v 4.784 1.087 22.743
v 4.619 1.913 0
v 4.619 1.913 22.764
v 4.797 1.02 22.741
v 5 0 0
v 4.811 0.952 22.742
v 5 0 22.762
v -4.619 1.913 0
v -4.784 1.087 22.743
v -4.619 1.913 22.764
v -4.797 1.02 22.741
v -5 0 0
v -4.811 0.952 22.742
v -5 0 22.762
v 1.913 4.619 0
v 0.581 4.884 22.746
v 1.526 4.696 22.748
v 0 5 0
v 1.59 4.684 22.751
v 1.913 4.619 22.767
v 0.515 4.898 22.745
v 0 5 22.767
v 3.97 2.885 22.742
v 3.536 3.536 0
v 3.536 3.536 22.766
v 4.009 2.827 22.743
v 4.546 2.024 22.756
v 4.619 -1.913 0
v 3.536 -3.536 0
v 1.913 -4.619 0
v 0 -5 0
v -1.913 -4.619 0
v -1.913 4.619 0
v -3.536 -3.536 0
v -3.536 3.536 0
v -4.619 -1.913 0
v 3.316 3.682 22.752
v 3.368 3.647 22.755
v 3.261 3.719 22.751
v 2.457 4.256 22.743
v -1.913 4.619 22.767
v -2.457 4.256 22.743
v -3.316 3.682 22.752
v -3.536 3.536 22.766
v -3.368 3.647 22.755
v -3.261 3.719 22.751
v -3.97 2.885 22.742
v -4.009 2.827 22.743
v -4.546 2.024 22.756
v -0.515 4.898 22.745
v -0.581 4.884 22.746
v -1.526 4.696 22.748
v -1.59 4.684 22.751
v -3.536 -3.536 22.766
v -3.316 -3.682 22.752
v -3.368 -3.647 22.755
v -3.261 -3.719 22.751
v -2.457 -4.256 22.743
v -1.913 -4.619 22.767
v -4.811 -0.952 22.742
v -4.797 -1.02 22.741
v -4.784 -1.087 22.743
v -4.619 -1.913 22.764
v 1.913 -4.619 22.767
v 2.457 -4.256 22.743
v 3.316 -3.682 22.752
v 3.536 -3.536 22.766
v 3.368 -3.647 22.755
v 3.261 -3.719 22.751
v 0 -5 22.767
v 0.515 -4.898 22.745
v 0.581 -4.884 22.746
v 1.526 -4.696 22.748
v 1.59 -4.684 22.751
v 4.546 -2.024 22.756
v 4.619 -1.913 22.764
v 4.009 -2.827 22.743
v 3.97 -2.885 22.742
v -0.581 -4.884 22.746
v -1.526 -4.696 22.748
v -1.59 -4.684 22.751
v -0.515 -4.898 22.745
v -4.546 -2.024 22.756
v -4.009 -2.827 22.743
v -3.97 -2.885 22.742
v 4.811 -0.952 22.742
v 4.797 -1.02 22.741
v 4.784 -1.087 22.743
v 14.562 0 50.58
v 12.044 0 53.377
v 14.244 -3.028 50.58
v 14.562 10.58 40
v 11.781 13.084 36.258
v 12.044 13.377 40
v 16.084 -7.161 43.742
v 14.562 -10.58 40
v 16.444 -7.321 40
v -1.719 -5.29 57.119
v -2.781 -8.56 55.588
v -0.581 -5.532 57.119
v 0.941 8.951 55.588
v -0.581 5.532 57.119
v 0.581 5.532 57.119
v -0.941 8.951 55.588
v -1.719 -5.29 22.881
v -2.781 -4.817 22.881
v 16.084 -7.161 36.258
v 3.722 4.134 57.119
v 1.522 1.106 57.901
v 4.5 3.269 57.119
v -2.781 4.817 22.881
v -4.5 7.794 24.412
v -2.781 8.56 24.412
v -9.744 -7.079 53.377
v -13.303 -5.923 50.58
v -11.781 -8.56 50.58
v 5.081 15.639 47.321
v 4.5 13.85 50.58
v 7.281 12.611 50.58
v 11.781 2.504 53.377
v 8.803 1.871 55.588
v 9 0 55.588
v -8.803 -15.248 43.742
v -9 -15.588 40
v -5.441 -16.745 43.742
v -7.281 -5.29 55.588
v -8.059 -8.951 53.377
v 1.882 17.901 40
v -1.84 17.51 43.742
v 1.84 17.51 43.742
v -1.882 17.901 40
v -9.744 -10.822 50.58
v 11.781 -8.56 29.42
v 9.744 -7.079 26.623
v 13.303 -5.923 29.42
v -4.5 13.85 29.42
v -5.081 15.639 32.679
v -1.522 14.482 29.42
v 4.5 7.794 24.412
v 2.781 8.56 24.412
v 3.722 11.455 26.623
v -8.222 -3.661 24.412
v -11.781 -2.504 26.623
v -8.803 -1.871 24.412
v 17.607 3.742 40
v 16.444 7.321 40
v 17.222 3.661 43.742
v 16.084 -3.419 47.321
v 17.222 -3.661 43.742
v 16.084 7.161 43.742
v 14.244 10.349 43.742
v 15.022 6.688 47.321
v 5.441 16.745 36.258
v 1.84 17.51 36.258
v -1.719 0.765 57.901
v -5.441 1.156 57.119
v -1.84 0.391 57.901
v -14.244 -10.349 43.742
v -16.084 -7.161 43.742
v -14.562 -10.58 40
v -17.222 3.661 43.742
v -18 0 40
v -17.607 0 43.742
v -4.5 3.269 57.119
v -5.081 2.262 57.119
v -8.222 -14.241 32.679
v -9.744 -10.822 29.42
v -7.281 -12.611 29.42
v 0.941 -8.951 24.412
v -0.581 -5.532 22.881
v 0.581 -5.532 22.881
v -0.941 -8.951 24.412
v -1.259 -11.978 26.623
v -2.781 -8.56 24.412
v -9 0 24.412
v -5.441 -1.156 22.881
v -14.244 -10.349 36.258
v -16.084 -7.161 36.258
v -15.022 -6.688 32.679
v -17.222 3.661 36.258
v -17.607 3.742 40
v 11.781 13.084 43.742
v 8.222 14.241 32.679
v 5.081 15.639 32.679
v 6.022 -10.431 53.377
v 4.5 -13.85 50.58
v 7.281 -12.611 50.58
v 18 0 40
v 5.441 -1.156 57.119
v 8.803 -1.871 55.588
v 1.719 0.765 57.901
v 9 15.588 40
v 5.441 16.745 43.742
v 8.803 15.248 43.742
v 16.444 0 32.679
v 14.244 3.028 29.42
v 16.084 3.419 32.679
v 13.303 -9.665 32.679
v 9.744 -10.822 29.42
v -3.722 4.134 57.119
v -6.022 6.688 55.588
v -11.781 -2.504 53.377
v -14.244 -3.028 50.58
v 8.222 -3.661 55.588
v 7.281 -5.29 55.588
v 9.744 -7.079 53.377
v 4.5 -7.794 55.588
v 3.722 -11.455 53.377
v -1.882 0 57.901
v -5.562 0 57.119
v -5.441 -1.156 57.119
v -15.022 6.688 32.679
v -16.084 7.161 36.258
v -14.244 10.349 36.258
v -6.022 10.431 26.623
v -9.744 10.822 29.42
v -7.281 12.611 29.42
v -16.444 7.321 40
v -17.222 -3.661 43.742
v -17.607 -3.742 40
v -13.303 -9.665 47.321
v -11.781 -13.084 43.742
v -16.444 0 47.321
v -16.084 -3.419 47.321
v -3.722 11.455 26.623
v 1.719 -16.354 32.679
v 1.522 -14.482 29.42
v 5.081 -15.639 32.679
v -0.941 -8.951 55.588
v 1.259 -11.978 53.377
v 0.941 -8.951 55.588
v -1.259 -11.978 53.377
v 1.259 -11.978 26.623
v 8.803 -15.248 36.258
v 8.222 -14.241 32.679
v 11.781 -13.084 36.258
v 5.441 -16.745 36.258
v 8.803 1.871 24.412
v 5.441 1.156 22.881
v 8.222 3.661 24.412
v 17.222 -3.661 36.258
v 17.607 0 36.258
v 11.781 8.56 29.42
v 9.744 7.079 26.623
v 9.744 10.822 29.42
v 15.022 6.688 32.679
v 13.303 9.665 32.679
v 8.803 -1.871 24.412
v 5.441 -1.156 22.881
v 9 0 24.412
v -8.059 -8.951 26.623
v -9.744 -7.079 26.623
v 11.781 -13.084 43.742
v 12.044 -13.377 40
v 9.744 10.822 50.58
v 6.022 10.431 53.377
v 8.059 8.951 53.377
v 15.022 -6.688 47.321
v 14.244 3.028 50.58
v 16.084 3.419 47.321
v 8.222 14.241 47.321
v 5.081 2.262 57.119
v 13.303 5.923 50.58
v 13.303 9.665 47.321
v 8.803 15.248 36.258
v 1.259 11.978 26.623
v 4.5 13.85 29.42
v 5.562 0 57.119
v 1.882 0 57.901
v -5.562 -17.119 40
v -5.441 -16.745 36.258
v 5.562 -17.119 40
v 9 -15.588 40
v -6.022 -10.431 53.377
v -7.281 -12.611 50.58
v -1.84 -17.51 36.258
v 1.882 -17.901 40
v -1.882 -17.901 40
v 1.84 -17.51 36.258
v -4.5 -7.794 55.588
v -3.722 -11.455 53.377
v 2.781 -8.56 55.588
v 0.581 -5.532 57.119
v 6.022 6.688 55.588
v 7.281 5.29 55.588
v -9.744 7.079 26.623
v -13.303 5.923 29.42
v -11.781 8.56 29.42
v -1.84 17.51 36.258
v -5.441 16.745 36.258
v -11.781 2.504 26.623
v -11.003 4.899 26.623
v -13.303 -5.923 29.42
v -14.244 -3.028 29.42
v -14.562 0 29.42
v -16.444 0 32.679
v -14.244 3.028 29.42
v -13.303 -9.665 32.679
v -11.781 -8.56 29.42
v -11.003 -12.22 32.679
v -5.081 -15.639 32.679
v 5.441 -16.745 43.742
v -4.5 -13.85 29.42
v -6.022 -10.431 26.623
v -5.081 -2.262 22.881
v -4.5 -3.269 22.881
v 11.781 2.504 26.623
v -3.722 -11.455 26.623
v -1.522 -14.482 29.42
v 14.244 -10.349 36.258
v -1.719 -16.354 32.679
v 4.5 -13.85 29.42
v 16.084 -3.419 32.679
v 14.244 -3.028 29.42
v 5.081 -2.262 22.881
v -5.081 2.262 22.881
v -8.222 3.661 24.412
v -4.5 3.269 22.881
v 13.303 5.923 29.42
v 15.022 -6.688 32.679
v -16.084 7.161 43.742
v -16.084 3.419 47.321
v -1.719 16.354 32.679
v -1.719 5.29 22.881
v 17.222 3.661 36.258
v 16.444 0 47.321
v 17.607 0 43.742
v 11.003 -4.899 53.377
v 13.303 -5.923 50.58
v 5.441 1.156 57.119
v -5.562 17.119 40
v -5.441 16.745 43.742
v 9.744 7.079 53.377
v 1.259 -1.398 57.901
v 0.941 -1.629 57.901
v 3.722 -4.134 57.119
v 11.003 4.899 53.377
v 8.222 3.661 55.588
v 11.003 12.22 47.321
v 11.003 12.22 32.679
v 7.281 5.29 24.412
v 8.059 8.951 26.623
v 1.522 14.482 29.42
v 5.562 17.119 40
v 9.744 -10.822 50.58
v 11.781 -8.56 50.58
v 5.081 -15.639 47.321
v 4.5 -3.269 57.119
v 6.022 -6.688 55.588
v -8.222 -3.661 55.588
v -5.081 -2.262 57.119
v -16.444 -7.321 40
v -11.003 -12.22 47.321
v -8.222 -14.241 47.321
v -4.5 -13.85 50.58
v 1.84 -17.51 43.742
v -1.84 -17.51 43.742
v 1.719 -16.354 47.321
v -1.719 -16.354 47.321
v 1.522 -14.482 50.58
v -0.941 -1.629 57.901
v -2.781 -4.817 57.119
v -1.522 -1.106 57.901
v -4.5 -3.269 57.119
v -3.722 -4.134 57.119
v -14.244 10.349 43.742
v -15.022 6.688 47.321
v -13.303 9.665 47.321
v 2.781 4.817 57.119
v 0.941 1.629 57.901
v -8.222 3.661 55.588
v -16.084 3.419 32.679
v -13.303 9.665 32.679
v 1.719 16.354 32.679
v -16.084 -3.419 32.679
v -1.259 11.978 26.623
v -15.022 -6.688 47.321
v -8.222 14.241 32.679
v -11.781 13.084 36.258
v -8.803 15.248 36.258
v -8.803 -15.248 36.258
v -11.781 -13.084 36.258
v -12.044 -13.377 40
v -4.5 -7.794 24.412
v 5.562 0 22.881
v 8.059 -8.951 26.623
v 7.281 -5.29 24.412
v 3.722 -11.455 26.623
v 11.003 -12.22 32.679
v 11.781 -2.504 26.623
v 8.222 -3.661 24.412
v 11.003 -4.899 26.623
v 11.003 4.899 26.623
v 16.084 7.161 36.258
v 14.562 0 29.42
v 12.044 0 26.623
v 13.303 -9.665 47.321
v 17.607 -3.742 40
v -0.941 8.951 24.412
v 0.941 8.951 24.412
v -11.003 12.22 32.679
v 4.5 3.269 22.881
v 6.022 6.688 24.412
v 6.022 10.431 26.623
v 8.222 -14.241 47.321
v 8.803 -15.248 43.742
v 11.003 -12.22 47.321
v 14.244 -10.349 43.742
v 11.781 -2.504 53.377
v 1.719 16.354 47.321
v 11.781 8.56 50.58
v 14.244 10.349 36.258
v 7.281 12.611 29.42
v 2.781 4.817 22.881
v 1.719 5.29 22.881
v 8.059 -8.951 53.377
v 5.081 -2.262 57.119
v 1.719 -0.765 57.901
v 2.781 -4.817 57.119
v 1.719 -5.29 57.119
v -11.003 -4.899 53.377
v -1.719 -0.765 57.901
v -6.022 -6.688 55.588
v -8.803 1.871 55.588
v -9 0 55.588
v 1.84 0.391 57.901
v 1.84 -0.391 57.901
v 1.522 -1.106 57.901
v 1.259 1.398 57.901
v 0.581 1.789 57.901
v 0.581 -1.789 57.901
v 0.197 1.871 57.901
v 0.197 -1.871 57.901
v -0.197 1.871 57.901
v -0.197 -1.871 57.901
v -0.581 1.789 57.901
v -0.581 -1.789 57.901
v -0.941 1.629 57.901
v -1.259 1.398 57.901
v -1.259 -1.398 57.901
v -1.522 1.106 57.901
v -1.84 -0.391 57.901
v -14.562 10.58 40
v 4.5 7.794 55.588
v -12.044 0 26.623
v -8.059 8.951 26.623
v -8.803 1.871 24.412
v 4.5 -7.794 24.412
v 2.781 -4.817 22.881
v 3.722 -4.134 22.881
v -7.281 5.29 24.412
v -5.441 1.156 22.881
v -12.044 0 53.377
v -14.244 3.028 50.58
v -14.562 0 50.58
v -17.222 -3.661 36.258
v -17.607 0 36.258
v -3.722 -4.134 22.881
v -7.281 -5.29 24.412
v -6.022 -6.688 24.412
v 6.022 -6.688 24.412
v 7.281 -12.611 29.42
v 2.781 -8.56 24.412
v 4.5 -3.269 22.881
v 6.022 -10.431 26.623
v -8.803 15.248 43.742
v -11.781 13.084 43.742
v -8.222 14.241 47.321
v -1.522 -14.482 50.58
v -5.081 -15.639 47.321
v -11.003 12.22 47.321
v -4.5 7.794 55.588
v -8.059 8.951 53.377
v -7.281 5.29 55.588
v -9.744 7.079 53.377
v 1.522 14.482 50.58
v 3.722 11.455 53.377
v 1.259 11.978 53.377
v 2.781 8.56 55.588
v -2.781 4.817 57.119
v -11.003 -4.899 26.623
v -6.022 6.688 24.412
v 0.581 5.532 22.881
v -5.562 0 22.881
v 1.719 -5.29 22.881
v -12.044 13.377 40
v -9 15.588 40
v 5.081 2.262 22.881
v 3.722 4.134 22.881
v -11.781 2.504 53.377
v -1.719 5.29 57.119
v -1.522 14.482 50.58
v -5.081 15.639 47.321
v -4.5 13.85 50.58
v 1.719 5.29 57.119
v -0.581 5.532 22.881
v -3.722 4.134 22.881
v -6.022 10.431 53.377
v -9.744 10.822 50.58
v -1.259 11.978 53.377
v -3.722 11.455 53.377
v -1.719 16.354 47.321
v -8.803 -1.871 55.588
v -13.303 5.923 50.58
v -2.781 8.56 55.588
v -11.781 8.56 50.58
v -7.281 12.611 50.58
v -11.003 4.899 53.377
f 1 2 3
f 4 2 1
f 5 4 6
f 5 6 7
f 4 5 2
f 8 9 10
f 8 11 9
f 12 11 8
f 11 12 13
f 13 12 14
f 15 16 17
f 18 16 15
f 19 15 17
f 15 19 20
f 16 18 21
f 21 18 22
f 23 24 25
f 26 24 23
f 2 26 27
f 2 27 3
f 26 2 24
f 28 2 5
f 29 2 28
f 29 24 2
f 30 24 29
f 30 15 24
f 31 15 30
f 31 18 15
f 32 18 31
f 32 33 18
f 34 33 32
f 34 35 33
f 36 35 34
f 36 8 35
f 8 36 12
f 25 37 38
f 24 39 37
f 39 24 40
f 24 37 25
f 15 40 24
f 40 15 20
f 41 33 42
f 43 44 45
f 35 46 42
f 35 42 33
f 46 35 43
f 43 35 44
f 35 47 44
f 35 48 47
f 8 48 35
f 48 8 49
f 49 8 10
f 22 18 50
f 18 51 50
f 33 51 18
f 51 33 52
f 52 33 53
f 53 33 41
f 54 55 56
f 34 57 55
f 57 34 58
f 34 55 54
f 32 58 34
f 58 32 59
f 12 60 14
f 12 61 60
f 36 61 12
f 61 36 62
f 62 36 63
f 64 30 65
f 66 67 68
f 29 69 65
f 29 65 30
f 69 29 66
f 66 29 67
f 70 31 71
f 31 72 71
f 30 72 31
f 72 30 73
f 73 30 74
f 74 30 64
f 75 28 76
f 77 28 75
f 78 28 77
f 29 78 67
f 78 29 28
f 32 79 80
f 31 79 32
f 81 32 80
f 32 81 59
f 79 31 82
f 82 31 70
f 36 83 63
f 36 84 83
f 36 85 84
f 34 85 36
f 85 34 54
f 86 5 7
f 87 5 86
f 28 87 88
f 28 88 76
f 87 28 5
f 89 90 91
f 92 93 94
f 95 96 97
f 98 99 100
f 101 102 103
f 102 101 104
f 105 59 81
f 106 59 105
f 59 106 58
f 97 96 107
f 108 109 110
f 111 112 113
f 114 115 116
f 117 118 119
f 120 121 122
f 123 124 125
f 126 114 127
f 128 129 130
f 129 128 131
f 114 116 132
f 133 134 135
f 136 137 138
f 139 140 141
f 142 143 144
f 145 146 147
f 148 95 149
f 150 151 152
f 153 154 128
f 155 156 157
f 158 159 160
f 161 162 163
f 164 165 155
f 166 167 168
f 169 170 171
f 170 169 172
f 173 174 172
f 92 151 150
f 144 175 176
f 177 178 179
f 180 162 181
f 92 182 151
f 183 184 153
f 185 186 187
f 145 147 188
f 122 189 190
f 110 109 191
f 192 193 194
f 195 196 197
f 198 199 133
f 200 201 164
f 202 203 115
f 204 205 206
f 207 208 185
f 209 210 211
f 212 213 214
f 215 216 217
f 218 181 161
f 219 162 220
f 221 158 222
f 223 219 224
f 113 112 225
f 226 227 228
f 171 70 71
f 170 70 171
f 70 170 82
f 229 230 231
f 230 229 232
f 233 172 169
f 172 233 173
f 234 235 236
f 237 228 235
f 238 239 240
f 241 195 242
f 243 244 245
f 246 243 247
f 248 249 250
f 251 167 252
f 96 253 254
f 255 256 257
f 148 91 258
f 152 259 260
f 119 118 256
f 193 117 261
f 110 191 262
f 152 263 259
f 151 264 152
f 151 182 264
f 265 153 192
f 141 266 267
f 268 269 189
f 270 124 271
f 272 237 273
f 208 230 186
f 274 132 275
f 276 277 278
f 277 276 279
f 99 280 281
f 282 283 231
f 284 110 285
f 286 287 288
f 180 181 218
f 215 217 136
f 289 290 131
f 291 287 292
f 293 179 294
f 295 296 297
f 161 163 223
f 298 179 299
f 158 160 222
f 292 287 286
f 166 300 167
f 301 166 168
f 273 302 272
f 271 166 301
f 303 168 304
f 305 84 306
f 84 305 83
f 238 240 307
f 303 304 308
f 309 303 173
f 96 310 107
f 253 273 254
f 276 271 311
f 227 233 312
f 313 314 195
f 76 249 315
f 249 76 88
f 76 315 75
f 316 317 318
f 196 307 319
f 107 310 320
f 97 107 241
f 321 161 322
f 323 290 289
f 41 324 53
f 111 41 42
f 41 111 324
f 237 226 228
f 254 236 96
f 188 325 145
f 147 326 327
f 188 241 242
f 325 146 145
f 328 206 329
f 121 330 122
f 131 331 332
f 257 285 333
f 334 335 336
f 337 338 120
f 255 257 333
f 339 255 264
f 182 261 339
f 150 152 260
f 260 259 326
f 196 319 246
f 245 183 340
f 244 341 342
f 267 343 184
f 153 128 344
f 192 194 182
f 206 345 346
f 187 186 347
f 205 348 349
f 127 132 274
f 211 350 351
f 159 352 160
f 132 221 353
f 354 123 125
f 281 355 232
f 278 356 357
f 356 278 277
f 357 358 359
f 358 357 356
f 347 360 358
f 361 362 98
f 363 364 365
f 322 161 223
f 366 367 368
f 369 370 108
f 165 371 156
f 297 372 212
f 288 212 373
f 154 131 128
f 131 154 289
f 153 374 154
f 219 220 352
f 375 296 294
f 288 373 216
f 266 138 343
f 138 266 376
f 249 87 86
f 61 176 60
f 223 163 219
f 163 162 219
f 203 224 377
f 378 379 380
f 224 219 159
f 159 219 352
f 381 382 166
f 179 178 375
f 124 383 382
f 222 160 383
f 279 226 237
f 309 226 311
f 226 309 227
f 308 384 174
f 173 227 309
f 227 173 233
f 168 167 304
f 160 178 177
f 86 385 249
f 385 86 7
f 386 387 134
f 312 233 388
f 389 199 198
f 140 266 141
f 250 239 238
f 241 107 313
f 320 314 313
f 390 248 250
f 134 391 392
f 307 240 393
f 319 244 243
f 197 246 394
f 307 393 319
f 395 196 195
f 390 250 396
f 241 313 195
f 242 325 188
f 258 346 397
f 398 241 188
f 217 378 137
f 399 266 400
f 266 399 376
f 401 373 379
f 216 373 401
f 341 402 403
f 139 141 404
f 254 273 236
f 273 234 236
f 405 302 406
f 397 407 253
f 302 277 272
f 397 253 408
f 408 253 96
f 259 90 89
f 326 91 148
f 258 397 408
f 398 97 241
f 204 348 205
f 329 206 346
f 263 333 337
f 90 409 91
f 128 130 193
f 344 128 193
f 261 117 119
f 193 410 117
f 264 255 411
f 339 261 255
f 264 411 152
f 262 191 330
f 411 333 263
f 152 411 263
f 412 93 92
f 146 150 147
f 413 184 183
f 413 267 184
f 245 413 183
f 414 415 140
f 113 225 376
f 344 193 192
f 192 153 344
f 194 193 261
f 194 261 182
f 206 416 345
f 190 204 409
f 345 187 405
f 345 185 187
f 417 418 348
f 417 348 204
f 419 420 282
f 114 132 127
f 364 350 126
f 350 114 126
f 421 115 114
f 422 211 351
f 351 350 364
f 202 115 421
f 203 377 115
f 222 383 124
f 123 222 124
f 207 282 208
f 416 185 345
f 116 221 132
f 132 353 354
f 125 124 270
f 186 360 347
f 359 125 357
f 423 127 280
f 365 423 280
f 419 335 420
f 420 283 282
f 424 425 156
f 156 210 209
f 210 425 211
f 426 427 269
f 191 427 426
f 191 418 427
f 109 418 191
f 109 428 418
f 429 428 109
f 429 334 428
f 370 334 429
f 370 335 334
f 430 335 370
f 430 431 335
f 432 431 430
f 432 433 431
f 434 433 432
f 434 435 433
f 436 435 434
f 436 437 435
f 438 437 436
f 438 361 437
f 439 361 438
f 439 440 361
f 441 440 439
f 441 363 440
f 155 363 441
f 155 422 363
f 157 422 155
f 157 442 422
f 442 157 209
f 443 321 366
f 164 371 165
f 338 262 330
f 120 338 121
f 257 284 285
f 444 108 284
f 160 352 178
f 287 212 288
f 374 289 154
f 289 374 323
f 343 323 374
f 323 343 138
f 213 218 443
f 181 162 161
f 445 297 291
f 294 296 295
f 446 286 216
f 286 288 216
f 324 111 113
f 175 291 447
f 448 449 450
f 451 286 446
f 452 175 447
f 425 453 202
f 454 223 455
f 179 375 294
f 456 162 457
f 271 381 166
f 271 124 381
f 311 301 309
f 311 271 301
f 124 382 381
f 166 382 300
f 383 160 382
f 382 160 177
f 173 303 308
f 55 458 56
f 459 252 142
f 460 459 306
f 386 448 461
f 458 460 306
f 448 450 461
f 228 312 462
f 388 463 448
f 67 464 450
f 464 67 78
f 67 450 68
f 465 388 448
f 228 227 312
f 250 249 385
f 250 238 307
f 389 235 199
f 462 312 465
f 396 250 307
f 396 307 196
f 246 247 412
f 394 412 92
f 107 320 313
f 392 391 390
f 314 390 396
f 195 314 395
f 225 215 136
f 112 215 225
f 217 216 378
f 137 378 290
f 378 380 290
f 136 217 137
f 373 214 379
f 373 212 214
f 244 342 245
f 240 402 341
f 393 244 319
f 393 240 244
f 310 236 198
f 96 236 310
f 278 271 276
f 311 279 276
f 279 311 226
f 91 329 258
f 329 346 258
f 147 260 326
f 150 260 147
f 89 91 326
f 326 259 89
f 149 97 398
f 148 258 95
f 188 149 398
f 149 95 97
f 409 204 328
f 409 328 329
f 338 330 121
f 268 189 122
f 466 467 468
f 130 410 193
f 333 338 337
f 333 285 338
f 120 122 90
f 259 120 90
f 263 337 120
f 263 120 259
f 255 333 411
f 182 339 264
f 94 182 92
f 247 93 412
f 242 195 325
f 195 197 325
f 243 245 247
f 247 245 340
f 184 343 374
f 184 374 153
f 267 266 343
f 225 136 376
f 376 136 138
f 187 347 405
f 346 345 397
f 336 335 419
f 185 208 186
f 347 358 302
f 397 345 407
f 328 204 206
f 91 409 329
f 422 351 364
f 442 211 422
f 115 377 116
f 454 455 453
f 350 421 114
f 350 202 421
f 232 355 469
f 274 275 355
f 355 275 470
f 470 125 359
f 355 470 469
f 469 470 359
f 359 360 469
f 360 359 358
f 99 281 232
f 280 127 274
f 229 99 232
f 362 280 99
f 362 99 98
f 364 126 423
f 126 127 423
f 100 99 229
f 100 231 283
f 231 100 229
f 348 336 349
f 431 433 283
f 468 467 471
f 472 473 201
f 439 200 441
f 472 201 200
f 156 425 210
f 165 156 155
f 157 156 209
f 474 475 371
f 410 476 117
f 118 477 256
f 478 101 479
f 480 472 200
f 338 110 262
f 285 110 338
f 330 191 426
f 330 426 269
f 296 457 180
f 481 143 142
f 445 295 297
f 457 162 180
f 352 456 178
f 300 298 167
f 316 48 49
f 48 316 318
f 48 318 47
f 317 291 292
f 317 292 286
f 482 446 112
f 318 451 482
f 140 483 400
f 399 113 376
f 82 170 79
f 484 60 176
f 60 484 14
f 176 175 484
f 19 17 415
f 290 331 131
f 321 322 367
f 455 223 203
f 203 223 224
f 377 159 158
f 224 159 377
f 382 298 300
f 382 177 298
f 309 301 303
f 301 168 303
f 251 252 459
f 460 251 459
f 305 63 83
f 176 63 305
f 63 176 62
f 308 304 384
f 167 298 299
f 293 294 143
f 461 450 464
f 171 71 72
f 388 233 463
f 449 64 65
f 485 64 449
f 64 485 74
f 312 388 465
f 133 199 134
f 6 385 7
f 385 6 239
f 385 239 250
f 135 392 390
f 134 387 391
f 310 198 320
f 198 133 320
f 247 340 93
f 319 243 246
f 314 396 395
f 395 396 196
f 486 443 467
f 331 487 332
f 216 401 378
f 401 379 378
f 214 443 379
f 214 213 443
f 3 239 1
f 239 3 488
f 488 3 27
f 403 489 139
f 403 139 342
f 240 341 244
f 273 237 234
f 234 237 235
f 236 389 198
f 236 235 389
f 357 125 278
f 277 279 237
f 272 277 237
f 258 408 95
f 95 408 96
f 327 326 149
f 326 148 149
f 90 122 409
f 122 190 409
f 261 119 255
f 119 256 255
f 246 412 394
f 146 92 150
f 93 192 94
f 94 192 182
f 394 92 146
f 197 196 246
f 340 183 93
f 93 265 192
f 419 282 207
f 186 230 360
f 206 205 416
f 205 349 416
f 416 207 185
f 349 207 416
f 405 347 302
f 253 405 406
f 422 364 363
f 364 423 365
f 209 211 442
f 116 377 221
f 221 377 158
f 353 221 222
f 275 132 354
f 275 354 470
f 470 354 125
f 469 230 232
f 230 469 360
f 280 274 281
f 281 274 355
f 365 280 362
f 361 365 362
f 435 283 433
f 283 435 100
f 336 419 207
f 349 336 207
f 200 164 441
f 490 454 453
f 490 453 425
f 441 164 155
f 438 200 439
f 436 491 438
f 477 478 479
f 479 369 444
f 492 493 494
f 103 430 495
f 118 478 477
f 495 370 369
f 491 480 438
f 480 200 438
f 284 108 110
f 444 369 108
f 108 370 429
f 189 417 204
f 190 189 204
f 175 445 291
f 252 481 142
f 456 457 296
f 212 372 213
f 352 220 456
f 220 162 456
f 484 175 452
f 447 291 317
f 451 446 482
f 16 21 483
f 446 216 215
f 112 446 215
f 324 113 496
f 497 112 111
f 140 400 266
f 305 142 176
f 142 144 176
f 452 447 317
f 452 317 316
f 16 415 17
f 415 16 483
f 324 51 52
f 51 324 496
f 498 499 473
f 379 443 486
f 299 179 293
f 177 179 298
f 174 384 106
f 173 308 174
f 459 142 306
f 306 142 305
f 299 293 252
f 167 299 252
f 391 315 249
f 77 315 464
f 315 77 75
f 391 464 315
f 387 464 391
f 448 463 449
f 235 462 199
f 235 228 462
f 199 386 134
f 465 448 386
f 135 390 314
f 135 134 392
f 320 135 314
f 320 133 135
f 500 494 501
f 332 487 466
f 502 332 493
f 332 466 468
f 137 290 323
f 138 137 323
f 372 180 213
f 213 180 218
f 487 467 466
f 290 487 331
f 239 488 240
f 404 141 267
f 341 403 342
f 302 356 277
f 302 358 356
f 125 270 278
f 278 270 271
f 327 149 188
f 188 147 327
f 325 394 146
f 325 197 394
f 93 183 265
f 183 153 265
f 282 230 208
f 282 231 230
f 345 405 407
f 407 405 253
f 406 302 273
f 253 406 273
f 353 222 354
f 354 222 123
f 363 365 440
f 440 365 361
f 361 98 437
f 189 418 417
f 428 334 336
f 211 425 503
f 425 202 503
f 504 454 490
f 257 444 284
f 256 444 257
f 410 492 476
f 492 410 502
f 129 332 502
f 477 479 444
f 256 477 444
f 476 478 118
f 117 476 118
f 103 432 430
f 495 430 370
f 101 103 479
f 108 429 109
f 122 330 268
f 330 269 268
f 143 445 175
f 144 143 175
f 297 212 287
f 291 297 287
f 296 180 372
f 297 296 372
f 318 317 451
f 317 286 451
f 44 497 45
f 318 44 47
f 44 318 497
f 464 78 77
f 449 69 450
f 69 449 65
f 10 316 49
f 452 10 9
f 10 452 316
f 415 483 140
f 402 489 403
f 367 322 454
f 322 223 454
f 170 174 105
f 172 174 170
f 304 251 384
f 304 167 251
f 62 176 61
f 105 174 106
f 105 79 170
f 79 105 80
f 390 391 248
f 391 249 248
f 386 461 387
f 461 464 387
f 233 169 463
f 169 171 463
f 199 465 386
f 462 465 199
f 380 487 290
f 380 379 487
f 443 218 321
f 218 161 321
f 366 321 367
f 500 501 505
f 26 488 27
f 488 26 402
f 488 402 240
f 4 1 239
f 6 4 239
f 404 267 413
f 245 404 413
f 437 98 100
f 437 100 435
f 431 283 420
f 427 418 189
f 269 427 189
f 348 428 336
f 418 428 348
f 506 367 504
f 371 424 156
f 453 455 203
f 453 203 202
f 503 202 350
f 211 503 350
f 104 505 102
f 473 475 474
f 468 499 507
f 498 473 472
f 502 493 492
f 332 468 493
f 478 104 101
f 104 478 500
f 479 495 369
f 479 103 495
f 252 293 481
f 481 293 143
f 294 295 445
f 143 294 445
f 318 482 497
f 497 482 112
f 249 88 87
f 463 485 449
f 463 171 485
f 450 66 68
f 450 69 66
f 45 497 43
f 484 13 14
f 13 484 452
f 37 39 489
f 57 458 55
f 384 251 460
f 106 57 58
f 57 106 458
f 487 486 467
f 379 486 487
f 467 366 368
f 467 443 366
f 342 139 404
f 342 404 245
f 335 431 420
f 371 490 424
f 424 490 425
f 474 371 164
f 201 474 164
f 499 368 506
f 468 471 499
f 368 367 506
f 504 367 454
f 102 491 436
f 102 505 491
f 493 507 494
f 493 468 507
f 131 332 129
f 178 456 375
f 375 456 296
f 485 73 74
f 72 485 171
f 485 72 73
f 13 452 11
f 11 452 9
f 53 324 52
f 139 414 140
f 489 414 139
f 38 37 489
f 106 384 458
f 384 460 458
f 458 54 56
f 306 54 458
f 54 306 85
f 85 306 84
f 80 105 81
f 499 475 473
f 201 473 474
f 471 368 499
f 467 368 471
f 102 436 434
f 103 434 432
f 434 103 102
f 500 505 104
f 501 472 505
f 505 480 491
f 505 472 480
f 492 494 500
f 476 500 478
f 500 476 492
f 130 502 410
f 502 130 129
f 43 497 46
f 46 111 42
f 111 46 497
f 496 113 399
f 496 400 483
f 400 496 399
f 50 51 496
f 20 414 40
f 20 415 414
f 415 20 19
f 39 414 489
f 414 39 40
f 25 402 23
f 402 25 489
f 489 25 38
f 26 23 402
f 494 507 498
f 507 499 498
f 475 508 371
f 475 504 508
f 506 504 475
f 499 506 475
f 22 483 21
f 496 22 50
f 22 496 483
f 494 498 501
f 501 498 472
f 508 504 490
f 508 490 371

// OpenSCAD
// Simple tree model with cylindrical trunk and rounded crown

// Parameters for easy adjustment
trunk_height = 40;
trunk_radius = 5;
crown_radius = 18;

module tree(trunk_h, trunk_r, crown_r) {
    // Trunk
    color([0.55, 0.27, 0.07])
        cylinder(h=trunk_h, r=trunk_r, center=false);
    // Foliage (crown)
    translate([0,0,trunk_h])
        color([0.13, 0.55, 0.13])
            sphere(r=crown_r);
}

// Render the tree
translate([0,0,0]) tree(trunk_height, trunk_radius, crown_radius);
